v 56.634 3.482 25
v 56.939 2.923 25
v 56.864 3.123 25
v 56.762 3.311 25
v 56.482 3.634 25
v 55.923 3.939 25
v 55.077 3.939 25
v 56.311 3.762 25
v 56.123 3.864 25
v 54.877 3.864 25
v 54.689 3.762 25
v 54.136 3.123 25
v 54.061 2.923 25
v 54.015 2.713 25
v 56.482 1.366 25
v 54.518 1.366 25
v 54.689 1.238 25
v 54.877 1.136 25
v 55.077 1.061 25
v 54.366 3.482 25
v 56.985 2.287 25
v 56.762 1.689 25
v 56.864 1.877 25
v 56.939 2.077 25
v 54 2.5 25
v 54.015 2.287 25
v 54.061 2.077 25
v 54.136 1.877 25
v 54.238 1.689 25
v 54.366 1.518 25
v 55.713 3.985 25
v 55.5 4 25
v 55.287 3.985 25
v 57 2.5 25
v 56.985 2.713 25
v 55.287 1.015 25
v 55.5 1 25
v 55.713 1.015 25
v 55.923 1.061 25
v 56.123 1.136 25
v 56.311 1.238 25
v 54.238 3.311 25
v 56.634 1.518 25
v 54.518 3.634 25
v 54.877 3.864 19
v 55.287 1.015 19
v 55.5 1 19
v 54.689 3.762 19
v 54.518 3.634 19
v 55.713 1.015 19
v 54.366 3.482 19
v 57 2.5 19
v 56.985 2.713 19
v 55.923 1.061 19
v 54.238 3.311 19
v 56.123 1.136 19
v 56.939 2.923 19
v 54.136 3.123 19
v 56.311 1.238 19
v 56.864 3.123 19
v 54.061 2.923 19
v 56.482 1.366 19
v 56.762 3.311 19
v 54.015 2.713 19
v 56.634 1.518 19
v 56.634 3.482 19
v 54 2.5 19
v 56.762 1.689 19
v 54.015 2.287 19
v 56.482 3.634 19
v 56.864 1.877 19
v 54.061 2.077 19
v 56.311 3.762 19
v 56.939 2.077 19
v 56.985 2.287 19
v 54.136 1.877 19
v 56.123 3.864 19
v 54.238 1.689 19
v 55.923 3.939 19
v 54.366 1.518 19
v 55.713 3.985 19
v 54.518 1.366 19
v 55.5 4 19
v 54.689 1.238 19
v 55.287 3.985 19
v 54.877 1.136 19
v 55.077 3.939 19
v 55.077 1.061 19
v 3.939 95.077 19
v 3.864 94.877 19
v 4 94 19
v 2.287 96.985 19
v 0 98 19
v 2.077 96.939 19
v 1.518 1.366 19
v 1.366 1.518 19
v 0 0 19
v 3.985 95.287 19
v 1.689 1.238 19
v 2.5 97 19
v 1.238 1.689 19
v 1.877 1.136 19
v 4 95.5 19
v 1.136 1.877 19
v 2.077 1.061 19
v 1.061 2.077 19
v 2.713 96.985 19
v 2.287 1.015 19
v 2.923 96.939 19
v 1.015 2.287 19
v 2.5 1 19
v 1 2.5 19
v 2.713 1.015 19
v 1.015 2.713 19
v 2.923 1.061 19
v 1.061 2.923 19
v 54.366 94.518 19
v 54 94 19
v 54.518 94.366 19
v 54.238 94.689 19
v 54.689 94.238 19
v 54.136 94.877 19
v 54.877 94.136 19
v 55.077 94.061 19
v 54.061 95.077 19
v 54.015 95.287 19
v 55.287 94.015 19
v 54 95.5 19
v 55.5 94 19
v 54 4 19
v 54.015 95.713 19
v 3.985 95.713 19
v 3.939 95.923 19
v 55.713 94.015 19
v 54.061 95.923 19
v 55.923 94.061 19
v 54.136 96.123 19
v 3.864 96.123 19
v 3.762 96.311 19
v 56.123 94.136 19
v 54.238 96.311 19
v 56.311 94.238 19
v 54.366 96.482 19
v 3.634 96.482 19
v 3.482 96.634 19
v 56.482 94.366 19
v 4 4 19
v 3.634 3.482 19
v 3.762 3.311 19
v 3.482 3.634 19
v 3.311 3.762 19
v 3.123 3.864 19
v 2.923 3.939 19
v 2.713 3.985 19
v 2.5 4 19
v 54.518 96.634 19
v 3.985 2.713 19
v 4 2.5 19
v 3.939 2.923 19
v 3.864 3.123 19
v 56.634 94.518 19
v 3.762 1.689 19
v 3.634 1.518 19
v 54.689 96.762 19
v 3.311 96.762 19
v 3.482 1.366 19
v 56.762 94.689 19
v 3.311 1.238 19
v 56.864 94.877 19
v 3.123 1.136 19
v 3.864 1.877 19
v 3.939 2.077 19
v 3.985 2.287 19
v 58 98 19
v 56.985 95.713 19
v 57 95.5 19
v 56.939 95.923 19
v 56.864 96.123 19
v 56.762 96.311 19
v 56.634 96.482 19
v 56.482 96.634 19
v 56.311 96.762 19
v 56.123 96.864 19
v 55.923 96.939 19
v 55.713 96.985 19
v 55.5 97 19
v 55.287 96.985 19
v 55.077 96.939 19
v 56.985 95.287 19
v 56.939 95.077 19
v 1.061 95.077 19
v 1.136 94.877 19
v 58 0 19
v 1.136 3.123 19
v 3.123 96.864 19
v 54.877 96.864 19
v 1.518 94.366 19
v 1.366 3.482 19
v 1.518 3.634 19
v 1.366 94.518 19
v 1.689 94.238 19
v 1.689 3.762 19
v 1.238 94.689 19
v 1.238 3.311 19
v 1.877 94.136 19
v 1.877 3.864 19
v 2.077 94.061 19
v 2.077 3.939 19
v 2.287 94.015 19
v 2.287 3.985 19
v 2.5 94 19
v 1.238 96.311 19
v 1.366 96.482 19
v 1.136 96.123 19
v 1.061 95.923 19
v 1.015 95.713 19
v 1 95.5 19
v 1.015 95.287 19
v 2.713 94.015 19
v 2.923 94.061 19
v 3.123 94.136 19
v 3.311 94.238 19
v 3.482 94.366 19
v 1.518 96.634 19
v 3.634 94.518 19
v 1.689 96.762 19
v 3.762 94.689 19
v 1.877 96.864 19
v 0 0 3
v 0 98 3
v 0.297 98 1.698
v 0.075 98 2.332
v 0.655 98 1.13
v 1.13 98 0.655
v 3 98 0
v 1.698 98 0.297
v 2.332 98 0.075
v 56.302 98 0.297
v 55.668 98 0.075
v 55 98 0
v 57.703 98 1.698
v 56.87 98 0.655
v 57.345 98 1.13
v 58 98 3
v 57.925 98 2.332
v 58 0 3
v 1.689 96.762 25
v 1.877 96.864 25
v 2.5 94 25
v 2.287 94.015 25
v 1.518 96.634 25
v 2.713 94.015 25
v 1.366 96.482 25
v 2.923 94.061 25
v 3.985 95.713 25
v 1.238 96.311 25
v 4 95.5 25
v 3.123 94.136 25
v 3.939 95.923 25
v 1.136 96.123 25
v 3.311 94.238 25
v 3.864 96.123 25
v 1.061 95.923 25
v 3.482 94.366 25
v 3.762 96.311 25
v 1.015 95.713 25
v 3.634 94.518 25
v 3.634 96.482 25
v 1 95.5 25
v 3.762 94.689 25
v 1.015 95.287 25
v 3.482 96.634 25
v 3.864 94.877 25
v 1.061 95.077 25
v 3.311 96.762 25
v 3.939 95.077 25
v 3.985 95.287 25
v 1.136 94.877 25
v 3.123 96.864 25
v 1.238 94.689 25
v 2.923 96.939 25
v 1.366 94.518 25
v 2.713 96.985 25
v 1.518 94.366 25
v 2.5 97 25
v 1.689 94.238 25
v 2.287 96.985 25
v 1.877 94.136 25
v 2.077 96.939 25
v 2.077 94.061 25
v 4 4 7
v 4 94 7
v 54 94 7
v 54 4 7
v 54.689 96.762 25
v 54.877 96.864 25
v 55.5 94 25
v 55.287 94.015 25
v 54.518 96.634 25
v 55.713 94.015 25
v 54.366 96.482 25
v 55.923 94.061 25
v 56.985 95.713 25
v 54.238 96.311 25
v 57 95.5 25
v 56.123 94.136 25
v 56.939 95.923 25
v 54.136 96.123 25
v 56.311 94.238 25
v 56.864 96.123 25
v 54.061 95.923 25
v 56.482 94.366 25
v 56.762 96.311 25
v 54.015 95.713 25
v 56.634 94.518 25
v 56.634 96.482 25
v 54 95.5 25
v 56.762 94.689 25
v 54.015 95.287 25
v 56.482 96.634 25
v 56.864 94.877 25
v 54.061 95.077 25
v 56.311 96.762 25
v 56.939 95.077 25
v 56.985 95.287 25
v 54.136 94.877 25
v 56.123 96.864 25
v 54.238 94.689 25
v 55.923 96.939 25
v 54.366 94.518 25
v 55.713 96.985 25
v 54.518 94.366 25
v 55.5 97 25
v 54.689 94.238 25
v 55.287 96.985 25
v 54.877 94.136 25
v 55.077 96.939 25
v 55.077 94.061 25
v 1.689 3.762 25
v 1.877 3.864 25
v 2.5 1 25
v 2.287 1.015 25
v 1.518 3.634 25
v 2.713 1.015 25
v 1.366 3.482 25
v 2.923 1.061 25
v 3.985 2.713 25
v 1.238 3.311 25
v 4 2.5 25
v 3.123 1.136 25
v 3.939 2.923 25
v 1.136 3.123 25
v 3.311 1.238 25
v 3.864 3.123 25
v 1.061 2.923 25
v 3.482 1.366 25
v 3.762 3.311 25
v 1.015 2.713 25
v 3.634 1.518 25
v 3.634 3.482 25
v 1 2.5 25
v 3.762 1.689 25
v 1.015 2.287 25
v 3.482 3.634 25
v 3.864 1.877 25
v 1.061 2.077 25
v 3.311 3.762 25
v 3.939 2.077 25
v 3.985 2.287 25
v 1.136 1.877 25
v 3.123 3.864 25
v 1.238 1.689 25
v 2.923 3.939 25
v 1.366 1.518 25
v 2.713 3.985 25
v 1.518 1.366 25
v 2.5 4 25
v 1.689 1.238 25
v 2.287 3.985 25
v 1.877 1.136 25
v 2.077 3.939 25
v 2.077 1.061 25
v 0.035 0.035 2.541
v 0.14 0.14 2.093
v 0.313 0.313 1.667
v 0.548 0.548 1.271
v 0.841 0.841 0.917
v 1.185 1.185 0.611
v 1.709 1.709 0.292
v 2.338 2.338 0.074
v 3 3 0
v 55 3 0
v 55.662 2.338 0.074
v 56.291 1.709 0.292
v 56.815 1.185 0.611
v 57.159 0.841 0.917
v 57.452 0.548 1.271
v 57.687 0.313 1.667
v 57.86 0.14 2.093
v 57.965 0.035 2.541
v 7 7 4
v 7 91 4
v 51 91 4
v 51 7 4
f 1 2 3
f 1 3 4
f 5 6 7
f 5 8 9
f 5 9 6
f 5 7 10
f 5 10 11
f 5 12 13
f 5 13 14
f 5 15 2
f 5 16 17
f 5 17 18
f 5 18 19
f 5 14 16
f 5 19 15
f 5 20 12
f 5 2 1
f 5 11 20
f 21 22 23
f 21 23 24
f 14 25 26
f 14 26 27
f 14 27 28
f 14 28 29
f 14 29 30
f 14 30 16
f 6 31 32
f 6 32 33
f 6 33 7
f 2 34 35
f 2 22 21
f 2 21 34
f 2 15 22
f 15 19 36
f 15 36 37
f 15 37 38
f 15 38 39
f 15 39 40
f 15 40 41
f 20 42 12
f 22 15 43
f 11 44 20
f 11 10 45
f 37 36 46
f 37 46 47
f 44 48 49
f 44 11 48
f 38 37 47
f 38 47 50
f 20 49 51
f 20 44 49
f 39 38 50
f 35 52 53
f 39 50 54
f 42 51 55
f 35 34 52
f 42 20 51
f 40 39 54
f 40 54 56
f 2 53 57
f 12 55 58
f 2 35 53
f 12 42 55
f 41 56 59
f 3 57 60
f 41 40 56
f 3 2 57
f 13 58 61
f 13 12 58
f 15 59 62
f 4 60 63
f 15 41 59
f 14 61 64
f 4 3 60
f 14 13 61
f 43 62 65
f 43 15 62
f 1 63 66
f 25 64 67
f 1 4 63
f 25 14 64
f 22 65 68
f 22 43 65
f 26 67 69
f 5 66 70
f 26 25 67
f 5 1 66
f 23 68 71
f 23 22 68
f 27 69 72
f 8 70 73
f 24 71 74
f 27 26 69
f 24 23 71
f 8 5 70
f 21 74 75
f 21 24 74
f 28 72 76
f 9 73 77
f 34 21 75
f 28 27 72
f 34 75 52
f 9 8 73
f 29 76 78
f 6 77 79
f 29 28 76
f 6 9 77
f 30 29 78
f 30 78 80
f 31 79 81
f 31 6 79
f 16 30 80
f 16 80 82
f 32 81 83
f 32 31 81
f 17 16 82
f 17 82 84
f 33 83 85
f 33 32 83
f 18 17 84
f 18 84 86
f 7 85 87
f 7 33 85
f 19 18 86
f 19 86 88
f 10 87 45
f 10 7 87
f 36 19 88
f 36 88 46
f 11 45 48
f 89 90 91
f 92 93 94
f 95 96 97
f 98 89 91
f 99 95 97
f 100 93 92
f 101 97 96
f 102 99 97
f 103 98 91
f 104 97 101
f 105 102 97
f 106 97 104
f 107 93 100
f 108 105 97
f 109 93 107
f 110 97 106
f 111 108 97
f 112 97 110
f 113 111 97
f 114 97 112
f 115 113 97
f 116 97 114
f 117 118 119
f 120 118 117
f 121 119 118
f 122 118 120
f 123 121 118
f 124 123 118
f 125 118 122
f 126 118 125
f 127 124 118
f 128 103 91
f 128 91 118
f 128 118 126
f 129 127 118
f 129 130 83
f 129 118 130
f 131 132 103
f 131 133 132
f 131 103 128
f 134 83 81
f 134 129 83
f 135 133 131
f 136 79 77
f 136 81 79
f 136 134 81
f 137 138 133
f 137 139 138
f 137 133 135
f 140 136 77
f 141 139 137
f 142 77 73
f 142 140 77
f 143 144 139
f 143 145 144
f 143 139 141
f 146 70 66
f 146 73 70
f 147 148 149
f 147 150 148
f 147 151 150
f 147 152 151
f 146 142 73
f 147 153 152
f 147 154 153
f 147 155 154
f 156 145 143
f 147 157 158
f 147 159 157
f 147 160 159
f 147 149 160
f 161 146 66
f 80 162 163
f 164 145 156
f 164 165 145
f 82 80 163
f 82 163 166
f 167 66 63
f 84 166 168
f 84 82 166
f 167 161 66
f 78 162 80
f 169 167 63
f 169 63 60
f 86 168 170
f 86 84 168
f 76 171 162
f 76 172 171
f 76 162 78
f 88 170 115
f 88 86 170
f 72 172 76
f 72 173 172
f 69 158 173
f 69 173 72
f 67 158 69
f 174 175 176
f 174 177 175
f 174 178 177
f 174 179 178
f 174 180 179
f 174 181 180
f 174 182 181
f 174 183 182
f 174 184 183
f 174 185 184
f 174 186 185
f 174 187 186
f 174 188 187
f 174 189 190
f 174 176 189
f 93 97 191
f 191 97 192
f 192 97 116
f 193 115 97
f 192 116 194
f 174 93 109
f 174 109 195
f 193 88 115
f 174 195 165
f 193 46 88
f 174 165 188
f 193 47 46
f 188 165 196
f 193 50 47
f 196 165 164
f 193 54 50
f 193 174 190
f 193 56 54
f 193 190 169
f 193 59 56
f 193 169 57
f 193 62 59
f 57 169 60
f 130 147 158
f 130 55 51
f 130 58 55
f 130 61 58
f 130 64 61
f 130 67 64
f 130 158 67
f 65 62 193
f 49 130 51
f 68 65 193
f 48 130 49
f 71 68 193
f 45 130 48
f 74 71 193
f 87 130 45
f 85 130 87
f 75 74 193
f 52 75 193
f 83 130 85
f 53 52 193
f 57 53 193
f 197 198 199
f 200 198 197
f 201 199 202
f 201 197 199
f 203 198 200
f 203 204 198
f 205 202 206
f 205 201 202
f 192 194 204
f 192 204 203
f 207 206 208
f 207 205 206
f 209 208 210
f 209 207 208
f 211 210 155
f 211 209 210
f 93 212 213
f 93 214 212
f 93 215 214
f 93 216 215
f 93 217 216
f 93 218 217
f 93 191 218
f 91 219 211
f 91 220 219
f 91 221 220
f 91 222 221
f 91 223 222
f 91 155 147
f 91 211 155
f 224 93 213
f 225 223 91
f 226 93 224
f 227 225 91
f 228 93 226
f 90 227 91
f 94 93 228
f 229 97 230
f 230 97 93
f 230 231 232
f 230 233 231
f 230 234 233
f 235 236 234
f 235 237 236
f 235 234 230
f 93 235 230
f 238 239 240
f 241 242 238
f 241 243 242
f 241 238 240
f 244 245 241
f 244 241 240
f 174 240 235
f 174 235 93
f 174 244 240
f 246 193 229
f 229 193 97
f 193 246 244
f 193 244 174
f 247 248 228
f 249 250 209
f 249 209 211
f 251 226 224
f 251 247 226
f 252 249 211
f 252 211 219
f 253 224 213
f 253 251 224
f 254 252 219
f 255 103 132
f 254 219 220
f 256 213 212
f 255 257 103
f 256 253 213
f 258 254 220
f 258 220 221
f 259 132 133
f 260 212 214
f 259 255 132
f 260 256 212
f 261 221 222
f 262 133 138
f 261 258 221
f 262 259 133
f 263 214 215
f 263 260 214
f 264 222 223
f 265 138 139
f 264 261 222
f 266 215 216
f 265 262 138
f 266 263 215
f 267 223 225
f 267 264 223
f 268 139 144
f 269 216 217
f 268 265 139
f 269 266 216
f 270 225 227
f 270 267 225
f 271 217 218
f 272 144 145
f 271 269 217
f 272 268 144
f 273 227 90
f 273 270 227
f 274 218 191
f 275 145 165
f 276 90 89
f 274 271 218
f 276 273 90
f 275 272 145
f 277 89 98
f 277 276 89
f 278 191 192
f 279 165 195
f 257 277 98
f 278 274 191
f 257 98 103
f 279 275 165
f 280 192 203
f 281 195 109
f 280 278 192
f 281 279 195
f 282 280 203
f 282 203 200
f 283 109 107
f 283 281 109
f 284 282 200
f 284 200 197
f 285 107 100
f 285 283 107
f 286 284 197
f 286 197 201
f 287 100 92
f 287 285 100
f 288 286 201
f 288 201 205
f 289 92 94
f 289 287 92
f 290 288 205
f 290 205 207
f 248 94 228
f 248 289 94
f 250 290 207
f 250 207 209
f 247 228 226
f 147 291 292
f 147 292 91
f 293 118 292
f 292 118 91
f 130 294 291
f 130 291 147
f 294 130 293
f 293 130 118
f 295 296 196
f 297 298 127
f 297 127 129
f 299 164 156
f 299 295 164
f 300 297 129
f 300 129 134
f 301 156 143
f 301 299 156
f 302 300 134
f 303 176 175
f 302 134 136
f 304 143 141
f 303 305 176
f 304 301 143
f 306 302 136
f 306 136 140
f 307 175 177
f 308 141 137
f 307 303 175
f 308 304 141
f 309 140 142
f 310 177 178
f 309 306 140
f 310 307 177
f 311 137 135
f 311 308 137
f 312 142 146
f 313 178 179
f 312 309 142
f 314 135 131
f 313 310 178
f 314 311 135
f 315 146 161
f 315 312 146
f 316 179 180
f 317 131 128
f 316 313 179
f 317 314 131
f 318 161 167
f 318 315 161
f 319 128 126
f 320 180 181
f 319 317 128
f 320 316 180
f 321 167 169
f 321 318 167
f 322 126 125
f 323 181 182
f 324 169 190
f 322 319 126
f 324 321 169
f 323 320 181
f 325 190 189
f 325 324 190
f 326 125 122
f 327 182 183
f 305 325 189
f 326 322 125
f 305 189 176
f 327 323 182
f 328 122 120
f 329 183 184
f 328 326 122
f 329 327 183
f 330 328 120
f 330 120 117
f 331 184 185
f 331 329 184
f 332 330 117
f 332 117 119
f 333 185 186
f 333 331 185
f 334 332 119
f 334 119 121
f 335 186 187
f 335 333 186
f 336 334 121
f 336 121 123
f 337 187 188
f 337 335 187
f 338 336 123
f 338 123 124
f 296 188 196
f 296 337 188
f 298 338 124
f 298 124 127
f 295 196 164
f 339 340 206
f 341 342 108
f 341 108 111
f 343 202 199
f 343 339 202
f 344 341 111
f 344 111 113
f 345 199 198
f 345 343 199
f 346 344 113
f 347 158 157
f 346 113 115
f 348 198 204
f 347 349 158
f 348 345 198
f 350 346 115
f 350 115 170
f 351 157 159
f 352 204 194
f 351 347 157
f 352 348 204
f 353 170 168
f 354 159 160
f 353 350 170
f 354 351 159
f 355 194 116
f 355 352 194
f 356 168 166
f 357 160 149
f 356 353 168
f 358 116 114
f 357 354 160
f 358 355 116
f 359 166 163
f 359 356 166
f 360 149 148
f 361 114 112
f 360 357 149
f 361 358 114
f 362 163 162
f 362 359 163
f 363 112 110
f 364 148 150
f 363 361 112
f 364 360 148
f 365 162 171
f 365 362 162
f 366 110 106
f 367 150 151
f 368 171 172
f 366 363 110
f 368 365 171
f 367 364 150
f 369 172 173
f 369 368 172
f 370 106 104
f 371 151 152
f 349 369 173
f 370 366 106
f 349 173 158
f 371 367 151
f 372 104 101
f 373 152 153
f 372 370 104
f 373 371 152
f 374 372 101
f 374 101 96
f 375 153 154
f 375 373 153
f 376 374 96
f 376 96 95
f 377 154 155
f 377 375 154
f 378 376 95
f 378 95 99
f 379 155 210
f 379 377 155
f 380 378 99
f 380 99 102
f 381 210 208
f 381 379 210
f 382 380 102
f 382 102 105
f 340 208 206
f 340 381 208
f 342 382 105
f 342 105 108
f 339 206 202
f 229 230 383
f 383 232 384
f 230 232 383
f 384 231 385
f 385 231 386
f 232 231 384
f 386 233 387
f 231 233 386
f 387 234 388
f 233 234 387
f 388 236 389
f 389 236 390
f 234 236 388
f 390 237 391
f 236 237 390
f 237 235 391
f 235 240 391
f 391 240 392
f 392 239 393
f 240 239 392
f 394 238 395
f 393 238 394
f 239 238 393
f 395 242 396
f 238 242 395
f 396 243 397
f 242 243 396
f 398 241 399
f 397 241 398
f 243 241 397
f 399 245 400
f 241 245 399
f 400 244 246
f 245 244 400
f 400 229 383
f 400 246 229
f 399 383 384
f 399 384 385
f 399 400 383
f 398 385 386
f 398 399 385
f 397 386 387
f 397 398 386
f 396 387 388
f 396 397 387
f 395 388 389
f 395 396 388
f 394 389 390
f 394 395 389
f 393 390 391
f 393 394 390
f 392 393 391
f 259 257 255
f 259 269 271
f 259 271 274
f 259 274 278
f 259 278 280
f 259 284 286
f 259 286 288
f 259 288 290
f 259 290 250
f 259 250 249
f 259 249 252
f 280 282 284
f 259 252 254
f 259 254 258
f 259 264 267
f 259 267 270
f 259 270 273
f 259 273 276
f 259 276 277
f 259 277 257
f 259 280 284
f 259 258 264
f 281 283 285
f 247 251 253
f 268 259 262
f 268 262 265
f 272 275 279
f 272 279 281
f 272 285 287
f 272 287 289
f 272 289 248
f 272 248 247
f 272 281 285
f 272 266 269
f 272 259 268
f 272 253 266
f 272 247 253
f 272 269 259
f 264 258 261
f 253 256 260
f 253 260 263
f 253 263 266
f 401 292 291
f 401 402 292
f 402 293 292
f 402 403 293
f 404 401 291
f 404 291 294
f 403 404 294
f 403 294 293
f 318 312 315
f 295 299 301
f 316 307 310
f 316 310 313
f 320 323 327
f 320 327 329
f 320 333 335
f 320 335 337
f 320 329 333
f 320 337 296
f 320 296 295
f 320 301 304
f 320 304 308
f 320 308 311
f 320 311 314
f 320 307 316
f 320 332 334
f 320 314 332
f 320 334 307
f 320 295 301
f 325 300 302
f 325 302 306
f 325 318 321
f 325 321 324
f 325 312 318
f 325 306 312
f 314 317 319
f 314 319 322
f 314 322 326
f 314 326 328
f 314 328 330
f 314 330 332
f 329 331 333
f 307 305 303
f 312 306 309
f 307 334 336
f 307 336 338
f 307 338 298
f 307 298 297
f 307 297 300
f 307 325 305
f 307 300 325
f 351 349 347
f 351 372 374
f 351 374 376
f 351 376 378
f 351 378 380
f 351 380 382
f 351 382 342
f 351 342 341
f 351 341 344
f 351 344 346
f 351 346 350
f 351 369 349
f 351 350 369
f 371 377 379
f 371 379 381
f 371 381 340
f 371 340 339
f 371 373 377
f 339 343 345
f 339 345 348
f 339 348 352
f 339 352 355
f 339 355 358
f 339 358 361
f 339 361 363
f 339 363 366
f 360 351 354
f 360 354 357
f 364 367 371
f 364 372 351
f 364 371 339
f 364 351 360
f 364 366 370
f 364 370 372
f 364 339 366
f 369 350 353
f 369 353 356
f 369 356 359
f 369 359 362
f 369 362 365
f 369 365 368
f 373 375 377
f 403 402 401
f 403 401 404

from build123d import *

# Parameters (mm, degrees)
CYLINDER001_R     = 1.5
CYLINDER001_DEPTH = 6
CYLINDER002_R     = 1.5
CYLINDER002_DEPTH = 6
CYLINDER_R        = 1.5
CYLINDER_DEPTH    = 6
CYLINDER003_R     = 1.5
CYLINDER003_DEPTH = 6
BOX001_W          = 50
BOX001_H          = 90
BOX001_DEPTH      = 15
CHAMFER_SIZE      = 3
BOX_W             = 58
BOX_H             = 98
BOX_DEPTH         = 19
FILLET_R          = 3


with BuildPart() as cylinder001:
    # Cylinder001 → Cylinder001 (new body)
    with BuildSketch(Plane(origin=(55.5, 2.5, 19), x_dir=(1, 0, 0), z_dir=(0, 0, 1))):
        Circle(CYLINDER001_R)
    extrude(amount=CYLINDER001_DEPTH)


with BuildPart() as cylinder002:
    # Cylinder002 → Cylinder002 (new body)
    with BuildSketch(Plane(origin=(2.5, 95.5, 19), x_dir=(1, 0, 0), z_dir=(0, 0, 1))):
        Circle(CYLINDER002_R)
    extrude(amount=CYLINDER002_DEPTH)


with BuildPart() as cylinder:
    # Cylinder → Cylinder (new body)
    with BuildSketch(Plane(origin=(2.5, 2.5, 19), x_dir=(1, 0, 0), z_dir=(0, 0, 1))):
        Circle(CYLINDER_R)
    extrude(amount=CYLINDER_DEPTH)


with BuildPart() as cylinder003:
    # Cylinder003 → Cylinder003 (new body)
    with BuildSketch(Plane(origin=(55.5, 95.5, 19), x_dir=(1, 0, 0), z_dir=(0, 0, 1))):
        Circle(CYLINDER003_R)
    extrude(amount=CYLINDER003_DEPTH)


with BuildPart() as chamfer_body:
    # Box001 → Box001 (new body)
    with BuildSketch(Plane(origin=(4, 4, 4), x_dir=(1, 0, 0), z_dir=(0, 0, 1))):
        with Locations((25, 45)):
            Rectangle(BOX001_W, BOX001_H)
    extrude(amount=BOX001_DEPTH)

    # Chamfer
    chamfer_edges = [chamfer_body.edges().sort_by_distance(p)[0] for p in [
        (4, 49, 4),
        (54, 49, 4),
        (29, 4, 4),
        (29, 94, 4),
    ]]
    chamfer(chamfer_edges, length=CHAMFER_SIZE)


with BuildPart() as fusion:
    # Box → Box (new body)
    with BuildSketch(Plane.XY):
        with Locations((29, 49)):
            Rectangle(BOX_W, BOX_H)
    extrude(amount=BOX_DEPTH)

    # Cut: cut Chamfer body
    add(chamfer_body.part, mode=Mode.SUBTRACT)

    # Fillet
    fillet_edges = [fusion.edges().sort_by_distance(p)[0] for p in [
        (0, 49, 0),
        (29, 0, 0),
        (58, 49, 0),
    ]]
    fillet(fillet_edges, radius=FILLET_R)

    # Fusion: union Cylinder001, Cylinder002, Cylinder, Cylinder003
    add(cylinder001.part)
    add(cylinder002.part)
    add(cylinder.part)
    add(cylinder003.part)


solid = fusion.part
